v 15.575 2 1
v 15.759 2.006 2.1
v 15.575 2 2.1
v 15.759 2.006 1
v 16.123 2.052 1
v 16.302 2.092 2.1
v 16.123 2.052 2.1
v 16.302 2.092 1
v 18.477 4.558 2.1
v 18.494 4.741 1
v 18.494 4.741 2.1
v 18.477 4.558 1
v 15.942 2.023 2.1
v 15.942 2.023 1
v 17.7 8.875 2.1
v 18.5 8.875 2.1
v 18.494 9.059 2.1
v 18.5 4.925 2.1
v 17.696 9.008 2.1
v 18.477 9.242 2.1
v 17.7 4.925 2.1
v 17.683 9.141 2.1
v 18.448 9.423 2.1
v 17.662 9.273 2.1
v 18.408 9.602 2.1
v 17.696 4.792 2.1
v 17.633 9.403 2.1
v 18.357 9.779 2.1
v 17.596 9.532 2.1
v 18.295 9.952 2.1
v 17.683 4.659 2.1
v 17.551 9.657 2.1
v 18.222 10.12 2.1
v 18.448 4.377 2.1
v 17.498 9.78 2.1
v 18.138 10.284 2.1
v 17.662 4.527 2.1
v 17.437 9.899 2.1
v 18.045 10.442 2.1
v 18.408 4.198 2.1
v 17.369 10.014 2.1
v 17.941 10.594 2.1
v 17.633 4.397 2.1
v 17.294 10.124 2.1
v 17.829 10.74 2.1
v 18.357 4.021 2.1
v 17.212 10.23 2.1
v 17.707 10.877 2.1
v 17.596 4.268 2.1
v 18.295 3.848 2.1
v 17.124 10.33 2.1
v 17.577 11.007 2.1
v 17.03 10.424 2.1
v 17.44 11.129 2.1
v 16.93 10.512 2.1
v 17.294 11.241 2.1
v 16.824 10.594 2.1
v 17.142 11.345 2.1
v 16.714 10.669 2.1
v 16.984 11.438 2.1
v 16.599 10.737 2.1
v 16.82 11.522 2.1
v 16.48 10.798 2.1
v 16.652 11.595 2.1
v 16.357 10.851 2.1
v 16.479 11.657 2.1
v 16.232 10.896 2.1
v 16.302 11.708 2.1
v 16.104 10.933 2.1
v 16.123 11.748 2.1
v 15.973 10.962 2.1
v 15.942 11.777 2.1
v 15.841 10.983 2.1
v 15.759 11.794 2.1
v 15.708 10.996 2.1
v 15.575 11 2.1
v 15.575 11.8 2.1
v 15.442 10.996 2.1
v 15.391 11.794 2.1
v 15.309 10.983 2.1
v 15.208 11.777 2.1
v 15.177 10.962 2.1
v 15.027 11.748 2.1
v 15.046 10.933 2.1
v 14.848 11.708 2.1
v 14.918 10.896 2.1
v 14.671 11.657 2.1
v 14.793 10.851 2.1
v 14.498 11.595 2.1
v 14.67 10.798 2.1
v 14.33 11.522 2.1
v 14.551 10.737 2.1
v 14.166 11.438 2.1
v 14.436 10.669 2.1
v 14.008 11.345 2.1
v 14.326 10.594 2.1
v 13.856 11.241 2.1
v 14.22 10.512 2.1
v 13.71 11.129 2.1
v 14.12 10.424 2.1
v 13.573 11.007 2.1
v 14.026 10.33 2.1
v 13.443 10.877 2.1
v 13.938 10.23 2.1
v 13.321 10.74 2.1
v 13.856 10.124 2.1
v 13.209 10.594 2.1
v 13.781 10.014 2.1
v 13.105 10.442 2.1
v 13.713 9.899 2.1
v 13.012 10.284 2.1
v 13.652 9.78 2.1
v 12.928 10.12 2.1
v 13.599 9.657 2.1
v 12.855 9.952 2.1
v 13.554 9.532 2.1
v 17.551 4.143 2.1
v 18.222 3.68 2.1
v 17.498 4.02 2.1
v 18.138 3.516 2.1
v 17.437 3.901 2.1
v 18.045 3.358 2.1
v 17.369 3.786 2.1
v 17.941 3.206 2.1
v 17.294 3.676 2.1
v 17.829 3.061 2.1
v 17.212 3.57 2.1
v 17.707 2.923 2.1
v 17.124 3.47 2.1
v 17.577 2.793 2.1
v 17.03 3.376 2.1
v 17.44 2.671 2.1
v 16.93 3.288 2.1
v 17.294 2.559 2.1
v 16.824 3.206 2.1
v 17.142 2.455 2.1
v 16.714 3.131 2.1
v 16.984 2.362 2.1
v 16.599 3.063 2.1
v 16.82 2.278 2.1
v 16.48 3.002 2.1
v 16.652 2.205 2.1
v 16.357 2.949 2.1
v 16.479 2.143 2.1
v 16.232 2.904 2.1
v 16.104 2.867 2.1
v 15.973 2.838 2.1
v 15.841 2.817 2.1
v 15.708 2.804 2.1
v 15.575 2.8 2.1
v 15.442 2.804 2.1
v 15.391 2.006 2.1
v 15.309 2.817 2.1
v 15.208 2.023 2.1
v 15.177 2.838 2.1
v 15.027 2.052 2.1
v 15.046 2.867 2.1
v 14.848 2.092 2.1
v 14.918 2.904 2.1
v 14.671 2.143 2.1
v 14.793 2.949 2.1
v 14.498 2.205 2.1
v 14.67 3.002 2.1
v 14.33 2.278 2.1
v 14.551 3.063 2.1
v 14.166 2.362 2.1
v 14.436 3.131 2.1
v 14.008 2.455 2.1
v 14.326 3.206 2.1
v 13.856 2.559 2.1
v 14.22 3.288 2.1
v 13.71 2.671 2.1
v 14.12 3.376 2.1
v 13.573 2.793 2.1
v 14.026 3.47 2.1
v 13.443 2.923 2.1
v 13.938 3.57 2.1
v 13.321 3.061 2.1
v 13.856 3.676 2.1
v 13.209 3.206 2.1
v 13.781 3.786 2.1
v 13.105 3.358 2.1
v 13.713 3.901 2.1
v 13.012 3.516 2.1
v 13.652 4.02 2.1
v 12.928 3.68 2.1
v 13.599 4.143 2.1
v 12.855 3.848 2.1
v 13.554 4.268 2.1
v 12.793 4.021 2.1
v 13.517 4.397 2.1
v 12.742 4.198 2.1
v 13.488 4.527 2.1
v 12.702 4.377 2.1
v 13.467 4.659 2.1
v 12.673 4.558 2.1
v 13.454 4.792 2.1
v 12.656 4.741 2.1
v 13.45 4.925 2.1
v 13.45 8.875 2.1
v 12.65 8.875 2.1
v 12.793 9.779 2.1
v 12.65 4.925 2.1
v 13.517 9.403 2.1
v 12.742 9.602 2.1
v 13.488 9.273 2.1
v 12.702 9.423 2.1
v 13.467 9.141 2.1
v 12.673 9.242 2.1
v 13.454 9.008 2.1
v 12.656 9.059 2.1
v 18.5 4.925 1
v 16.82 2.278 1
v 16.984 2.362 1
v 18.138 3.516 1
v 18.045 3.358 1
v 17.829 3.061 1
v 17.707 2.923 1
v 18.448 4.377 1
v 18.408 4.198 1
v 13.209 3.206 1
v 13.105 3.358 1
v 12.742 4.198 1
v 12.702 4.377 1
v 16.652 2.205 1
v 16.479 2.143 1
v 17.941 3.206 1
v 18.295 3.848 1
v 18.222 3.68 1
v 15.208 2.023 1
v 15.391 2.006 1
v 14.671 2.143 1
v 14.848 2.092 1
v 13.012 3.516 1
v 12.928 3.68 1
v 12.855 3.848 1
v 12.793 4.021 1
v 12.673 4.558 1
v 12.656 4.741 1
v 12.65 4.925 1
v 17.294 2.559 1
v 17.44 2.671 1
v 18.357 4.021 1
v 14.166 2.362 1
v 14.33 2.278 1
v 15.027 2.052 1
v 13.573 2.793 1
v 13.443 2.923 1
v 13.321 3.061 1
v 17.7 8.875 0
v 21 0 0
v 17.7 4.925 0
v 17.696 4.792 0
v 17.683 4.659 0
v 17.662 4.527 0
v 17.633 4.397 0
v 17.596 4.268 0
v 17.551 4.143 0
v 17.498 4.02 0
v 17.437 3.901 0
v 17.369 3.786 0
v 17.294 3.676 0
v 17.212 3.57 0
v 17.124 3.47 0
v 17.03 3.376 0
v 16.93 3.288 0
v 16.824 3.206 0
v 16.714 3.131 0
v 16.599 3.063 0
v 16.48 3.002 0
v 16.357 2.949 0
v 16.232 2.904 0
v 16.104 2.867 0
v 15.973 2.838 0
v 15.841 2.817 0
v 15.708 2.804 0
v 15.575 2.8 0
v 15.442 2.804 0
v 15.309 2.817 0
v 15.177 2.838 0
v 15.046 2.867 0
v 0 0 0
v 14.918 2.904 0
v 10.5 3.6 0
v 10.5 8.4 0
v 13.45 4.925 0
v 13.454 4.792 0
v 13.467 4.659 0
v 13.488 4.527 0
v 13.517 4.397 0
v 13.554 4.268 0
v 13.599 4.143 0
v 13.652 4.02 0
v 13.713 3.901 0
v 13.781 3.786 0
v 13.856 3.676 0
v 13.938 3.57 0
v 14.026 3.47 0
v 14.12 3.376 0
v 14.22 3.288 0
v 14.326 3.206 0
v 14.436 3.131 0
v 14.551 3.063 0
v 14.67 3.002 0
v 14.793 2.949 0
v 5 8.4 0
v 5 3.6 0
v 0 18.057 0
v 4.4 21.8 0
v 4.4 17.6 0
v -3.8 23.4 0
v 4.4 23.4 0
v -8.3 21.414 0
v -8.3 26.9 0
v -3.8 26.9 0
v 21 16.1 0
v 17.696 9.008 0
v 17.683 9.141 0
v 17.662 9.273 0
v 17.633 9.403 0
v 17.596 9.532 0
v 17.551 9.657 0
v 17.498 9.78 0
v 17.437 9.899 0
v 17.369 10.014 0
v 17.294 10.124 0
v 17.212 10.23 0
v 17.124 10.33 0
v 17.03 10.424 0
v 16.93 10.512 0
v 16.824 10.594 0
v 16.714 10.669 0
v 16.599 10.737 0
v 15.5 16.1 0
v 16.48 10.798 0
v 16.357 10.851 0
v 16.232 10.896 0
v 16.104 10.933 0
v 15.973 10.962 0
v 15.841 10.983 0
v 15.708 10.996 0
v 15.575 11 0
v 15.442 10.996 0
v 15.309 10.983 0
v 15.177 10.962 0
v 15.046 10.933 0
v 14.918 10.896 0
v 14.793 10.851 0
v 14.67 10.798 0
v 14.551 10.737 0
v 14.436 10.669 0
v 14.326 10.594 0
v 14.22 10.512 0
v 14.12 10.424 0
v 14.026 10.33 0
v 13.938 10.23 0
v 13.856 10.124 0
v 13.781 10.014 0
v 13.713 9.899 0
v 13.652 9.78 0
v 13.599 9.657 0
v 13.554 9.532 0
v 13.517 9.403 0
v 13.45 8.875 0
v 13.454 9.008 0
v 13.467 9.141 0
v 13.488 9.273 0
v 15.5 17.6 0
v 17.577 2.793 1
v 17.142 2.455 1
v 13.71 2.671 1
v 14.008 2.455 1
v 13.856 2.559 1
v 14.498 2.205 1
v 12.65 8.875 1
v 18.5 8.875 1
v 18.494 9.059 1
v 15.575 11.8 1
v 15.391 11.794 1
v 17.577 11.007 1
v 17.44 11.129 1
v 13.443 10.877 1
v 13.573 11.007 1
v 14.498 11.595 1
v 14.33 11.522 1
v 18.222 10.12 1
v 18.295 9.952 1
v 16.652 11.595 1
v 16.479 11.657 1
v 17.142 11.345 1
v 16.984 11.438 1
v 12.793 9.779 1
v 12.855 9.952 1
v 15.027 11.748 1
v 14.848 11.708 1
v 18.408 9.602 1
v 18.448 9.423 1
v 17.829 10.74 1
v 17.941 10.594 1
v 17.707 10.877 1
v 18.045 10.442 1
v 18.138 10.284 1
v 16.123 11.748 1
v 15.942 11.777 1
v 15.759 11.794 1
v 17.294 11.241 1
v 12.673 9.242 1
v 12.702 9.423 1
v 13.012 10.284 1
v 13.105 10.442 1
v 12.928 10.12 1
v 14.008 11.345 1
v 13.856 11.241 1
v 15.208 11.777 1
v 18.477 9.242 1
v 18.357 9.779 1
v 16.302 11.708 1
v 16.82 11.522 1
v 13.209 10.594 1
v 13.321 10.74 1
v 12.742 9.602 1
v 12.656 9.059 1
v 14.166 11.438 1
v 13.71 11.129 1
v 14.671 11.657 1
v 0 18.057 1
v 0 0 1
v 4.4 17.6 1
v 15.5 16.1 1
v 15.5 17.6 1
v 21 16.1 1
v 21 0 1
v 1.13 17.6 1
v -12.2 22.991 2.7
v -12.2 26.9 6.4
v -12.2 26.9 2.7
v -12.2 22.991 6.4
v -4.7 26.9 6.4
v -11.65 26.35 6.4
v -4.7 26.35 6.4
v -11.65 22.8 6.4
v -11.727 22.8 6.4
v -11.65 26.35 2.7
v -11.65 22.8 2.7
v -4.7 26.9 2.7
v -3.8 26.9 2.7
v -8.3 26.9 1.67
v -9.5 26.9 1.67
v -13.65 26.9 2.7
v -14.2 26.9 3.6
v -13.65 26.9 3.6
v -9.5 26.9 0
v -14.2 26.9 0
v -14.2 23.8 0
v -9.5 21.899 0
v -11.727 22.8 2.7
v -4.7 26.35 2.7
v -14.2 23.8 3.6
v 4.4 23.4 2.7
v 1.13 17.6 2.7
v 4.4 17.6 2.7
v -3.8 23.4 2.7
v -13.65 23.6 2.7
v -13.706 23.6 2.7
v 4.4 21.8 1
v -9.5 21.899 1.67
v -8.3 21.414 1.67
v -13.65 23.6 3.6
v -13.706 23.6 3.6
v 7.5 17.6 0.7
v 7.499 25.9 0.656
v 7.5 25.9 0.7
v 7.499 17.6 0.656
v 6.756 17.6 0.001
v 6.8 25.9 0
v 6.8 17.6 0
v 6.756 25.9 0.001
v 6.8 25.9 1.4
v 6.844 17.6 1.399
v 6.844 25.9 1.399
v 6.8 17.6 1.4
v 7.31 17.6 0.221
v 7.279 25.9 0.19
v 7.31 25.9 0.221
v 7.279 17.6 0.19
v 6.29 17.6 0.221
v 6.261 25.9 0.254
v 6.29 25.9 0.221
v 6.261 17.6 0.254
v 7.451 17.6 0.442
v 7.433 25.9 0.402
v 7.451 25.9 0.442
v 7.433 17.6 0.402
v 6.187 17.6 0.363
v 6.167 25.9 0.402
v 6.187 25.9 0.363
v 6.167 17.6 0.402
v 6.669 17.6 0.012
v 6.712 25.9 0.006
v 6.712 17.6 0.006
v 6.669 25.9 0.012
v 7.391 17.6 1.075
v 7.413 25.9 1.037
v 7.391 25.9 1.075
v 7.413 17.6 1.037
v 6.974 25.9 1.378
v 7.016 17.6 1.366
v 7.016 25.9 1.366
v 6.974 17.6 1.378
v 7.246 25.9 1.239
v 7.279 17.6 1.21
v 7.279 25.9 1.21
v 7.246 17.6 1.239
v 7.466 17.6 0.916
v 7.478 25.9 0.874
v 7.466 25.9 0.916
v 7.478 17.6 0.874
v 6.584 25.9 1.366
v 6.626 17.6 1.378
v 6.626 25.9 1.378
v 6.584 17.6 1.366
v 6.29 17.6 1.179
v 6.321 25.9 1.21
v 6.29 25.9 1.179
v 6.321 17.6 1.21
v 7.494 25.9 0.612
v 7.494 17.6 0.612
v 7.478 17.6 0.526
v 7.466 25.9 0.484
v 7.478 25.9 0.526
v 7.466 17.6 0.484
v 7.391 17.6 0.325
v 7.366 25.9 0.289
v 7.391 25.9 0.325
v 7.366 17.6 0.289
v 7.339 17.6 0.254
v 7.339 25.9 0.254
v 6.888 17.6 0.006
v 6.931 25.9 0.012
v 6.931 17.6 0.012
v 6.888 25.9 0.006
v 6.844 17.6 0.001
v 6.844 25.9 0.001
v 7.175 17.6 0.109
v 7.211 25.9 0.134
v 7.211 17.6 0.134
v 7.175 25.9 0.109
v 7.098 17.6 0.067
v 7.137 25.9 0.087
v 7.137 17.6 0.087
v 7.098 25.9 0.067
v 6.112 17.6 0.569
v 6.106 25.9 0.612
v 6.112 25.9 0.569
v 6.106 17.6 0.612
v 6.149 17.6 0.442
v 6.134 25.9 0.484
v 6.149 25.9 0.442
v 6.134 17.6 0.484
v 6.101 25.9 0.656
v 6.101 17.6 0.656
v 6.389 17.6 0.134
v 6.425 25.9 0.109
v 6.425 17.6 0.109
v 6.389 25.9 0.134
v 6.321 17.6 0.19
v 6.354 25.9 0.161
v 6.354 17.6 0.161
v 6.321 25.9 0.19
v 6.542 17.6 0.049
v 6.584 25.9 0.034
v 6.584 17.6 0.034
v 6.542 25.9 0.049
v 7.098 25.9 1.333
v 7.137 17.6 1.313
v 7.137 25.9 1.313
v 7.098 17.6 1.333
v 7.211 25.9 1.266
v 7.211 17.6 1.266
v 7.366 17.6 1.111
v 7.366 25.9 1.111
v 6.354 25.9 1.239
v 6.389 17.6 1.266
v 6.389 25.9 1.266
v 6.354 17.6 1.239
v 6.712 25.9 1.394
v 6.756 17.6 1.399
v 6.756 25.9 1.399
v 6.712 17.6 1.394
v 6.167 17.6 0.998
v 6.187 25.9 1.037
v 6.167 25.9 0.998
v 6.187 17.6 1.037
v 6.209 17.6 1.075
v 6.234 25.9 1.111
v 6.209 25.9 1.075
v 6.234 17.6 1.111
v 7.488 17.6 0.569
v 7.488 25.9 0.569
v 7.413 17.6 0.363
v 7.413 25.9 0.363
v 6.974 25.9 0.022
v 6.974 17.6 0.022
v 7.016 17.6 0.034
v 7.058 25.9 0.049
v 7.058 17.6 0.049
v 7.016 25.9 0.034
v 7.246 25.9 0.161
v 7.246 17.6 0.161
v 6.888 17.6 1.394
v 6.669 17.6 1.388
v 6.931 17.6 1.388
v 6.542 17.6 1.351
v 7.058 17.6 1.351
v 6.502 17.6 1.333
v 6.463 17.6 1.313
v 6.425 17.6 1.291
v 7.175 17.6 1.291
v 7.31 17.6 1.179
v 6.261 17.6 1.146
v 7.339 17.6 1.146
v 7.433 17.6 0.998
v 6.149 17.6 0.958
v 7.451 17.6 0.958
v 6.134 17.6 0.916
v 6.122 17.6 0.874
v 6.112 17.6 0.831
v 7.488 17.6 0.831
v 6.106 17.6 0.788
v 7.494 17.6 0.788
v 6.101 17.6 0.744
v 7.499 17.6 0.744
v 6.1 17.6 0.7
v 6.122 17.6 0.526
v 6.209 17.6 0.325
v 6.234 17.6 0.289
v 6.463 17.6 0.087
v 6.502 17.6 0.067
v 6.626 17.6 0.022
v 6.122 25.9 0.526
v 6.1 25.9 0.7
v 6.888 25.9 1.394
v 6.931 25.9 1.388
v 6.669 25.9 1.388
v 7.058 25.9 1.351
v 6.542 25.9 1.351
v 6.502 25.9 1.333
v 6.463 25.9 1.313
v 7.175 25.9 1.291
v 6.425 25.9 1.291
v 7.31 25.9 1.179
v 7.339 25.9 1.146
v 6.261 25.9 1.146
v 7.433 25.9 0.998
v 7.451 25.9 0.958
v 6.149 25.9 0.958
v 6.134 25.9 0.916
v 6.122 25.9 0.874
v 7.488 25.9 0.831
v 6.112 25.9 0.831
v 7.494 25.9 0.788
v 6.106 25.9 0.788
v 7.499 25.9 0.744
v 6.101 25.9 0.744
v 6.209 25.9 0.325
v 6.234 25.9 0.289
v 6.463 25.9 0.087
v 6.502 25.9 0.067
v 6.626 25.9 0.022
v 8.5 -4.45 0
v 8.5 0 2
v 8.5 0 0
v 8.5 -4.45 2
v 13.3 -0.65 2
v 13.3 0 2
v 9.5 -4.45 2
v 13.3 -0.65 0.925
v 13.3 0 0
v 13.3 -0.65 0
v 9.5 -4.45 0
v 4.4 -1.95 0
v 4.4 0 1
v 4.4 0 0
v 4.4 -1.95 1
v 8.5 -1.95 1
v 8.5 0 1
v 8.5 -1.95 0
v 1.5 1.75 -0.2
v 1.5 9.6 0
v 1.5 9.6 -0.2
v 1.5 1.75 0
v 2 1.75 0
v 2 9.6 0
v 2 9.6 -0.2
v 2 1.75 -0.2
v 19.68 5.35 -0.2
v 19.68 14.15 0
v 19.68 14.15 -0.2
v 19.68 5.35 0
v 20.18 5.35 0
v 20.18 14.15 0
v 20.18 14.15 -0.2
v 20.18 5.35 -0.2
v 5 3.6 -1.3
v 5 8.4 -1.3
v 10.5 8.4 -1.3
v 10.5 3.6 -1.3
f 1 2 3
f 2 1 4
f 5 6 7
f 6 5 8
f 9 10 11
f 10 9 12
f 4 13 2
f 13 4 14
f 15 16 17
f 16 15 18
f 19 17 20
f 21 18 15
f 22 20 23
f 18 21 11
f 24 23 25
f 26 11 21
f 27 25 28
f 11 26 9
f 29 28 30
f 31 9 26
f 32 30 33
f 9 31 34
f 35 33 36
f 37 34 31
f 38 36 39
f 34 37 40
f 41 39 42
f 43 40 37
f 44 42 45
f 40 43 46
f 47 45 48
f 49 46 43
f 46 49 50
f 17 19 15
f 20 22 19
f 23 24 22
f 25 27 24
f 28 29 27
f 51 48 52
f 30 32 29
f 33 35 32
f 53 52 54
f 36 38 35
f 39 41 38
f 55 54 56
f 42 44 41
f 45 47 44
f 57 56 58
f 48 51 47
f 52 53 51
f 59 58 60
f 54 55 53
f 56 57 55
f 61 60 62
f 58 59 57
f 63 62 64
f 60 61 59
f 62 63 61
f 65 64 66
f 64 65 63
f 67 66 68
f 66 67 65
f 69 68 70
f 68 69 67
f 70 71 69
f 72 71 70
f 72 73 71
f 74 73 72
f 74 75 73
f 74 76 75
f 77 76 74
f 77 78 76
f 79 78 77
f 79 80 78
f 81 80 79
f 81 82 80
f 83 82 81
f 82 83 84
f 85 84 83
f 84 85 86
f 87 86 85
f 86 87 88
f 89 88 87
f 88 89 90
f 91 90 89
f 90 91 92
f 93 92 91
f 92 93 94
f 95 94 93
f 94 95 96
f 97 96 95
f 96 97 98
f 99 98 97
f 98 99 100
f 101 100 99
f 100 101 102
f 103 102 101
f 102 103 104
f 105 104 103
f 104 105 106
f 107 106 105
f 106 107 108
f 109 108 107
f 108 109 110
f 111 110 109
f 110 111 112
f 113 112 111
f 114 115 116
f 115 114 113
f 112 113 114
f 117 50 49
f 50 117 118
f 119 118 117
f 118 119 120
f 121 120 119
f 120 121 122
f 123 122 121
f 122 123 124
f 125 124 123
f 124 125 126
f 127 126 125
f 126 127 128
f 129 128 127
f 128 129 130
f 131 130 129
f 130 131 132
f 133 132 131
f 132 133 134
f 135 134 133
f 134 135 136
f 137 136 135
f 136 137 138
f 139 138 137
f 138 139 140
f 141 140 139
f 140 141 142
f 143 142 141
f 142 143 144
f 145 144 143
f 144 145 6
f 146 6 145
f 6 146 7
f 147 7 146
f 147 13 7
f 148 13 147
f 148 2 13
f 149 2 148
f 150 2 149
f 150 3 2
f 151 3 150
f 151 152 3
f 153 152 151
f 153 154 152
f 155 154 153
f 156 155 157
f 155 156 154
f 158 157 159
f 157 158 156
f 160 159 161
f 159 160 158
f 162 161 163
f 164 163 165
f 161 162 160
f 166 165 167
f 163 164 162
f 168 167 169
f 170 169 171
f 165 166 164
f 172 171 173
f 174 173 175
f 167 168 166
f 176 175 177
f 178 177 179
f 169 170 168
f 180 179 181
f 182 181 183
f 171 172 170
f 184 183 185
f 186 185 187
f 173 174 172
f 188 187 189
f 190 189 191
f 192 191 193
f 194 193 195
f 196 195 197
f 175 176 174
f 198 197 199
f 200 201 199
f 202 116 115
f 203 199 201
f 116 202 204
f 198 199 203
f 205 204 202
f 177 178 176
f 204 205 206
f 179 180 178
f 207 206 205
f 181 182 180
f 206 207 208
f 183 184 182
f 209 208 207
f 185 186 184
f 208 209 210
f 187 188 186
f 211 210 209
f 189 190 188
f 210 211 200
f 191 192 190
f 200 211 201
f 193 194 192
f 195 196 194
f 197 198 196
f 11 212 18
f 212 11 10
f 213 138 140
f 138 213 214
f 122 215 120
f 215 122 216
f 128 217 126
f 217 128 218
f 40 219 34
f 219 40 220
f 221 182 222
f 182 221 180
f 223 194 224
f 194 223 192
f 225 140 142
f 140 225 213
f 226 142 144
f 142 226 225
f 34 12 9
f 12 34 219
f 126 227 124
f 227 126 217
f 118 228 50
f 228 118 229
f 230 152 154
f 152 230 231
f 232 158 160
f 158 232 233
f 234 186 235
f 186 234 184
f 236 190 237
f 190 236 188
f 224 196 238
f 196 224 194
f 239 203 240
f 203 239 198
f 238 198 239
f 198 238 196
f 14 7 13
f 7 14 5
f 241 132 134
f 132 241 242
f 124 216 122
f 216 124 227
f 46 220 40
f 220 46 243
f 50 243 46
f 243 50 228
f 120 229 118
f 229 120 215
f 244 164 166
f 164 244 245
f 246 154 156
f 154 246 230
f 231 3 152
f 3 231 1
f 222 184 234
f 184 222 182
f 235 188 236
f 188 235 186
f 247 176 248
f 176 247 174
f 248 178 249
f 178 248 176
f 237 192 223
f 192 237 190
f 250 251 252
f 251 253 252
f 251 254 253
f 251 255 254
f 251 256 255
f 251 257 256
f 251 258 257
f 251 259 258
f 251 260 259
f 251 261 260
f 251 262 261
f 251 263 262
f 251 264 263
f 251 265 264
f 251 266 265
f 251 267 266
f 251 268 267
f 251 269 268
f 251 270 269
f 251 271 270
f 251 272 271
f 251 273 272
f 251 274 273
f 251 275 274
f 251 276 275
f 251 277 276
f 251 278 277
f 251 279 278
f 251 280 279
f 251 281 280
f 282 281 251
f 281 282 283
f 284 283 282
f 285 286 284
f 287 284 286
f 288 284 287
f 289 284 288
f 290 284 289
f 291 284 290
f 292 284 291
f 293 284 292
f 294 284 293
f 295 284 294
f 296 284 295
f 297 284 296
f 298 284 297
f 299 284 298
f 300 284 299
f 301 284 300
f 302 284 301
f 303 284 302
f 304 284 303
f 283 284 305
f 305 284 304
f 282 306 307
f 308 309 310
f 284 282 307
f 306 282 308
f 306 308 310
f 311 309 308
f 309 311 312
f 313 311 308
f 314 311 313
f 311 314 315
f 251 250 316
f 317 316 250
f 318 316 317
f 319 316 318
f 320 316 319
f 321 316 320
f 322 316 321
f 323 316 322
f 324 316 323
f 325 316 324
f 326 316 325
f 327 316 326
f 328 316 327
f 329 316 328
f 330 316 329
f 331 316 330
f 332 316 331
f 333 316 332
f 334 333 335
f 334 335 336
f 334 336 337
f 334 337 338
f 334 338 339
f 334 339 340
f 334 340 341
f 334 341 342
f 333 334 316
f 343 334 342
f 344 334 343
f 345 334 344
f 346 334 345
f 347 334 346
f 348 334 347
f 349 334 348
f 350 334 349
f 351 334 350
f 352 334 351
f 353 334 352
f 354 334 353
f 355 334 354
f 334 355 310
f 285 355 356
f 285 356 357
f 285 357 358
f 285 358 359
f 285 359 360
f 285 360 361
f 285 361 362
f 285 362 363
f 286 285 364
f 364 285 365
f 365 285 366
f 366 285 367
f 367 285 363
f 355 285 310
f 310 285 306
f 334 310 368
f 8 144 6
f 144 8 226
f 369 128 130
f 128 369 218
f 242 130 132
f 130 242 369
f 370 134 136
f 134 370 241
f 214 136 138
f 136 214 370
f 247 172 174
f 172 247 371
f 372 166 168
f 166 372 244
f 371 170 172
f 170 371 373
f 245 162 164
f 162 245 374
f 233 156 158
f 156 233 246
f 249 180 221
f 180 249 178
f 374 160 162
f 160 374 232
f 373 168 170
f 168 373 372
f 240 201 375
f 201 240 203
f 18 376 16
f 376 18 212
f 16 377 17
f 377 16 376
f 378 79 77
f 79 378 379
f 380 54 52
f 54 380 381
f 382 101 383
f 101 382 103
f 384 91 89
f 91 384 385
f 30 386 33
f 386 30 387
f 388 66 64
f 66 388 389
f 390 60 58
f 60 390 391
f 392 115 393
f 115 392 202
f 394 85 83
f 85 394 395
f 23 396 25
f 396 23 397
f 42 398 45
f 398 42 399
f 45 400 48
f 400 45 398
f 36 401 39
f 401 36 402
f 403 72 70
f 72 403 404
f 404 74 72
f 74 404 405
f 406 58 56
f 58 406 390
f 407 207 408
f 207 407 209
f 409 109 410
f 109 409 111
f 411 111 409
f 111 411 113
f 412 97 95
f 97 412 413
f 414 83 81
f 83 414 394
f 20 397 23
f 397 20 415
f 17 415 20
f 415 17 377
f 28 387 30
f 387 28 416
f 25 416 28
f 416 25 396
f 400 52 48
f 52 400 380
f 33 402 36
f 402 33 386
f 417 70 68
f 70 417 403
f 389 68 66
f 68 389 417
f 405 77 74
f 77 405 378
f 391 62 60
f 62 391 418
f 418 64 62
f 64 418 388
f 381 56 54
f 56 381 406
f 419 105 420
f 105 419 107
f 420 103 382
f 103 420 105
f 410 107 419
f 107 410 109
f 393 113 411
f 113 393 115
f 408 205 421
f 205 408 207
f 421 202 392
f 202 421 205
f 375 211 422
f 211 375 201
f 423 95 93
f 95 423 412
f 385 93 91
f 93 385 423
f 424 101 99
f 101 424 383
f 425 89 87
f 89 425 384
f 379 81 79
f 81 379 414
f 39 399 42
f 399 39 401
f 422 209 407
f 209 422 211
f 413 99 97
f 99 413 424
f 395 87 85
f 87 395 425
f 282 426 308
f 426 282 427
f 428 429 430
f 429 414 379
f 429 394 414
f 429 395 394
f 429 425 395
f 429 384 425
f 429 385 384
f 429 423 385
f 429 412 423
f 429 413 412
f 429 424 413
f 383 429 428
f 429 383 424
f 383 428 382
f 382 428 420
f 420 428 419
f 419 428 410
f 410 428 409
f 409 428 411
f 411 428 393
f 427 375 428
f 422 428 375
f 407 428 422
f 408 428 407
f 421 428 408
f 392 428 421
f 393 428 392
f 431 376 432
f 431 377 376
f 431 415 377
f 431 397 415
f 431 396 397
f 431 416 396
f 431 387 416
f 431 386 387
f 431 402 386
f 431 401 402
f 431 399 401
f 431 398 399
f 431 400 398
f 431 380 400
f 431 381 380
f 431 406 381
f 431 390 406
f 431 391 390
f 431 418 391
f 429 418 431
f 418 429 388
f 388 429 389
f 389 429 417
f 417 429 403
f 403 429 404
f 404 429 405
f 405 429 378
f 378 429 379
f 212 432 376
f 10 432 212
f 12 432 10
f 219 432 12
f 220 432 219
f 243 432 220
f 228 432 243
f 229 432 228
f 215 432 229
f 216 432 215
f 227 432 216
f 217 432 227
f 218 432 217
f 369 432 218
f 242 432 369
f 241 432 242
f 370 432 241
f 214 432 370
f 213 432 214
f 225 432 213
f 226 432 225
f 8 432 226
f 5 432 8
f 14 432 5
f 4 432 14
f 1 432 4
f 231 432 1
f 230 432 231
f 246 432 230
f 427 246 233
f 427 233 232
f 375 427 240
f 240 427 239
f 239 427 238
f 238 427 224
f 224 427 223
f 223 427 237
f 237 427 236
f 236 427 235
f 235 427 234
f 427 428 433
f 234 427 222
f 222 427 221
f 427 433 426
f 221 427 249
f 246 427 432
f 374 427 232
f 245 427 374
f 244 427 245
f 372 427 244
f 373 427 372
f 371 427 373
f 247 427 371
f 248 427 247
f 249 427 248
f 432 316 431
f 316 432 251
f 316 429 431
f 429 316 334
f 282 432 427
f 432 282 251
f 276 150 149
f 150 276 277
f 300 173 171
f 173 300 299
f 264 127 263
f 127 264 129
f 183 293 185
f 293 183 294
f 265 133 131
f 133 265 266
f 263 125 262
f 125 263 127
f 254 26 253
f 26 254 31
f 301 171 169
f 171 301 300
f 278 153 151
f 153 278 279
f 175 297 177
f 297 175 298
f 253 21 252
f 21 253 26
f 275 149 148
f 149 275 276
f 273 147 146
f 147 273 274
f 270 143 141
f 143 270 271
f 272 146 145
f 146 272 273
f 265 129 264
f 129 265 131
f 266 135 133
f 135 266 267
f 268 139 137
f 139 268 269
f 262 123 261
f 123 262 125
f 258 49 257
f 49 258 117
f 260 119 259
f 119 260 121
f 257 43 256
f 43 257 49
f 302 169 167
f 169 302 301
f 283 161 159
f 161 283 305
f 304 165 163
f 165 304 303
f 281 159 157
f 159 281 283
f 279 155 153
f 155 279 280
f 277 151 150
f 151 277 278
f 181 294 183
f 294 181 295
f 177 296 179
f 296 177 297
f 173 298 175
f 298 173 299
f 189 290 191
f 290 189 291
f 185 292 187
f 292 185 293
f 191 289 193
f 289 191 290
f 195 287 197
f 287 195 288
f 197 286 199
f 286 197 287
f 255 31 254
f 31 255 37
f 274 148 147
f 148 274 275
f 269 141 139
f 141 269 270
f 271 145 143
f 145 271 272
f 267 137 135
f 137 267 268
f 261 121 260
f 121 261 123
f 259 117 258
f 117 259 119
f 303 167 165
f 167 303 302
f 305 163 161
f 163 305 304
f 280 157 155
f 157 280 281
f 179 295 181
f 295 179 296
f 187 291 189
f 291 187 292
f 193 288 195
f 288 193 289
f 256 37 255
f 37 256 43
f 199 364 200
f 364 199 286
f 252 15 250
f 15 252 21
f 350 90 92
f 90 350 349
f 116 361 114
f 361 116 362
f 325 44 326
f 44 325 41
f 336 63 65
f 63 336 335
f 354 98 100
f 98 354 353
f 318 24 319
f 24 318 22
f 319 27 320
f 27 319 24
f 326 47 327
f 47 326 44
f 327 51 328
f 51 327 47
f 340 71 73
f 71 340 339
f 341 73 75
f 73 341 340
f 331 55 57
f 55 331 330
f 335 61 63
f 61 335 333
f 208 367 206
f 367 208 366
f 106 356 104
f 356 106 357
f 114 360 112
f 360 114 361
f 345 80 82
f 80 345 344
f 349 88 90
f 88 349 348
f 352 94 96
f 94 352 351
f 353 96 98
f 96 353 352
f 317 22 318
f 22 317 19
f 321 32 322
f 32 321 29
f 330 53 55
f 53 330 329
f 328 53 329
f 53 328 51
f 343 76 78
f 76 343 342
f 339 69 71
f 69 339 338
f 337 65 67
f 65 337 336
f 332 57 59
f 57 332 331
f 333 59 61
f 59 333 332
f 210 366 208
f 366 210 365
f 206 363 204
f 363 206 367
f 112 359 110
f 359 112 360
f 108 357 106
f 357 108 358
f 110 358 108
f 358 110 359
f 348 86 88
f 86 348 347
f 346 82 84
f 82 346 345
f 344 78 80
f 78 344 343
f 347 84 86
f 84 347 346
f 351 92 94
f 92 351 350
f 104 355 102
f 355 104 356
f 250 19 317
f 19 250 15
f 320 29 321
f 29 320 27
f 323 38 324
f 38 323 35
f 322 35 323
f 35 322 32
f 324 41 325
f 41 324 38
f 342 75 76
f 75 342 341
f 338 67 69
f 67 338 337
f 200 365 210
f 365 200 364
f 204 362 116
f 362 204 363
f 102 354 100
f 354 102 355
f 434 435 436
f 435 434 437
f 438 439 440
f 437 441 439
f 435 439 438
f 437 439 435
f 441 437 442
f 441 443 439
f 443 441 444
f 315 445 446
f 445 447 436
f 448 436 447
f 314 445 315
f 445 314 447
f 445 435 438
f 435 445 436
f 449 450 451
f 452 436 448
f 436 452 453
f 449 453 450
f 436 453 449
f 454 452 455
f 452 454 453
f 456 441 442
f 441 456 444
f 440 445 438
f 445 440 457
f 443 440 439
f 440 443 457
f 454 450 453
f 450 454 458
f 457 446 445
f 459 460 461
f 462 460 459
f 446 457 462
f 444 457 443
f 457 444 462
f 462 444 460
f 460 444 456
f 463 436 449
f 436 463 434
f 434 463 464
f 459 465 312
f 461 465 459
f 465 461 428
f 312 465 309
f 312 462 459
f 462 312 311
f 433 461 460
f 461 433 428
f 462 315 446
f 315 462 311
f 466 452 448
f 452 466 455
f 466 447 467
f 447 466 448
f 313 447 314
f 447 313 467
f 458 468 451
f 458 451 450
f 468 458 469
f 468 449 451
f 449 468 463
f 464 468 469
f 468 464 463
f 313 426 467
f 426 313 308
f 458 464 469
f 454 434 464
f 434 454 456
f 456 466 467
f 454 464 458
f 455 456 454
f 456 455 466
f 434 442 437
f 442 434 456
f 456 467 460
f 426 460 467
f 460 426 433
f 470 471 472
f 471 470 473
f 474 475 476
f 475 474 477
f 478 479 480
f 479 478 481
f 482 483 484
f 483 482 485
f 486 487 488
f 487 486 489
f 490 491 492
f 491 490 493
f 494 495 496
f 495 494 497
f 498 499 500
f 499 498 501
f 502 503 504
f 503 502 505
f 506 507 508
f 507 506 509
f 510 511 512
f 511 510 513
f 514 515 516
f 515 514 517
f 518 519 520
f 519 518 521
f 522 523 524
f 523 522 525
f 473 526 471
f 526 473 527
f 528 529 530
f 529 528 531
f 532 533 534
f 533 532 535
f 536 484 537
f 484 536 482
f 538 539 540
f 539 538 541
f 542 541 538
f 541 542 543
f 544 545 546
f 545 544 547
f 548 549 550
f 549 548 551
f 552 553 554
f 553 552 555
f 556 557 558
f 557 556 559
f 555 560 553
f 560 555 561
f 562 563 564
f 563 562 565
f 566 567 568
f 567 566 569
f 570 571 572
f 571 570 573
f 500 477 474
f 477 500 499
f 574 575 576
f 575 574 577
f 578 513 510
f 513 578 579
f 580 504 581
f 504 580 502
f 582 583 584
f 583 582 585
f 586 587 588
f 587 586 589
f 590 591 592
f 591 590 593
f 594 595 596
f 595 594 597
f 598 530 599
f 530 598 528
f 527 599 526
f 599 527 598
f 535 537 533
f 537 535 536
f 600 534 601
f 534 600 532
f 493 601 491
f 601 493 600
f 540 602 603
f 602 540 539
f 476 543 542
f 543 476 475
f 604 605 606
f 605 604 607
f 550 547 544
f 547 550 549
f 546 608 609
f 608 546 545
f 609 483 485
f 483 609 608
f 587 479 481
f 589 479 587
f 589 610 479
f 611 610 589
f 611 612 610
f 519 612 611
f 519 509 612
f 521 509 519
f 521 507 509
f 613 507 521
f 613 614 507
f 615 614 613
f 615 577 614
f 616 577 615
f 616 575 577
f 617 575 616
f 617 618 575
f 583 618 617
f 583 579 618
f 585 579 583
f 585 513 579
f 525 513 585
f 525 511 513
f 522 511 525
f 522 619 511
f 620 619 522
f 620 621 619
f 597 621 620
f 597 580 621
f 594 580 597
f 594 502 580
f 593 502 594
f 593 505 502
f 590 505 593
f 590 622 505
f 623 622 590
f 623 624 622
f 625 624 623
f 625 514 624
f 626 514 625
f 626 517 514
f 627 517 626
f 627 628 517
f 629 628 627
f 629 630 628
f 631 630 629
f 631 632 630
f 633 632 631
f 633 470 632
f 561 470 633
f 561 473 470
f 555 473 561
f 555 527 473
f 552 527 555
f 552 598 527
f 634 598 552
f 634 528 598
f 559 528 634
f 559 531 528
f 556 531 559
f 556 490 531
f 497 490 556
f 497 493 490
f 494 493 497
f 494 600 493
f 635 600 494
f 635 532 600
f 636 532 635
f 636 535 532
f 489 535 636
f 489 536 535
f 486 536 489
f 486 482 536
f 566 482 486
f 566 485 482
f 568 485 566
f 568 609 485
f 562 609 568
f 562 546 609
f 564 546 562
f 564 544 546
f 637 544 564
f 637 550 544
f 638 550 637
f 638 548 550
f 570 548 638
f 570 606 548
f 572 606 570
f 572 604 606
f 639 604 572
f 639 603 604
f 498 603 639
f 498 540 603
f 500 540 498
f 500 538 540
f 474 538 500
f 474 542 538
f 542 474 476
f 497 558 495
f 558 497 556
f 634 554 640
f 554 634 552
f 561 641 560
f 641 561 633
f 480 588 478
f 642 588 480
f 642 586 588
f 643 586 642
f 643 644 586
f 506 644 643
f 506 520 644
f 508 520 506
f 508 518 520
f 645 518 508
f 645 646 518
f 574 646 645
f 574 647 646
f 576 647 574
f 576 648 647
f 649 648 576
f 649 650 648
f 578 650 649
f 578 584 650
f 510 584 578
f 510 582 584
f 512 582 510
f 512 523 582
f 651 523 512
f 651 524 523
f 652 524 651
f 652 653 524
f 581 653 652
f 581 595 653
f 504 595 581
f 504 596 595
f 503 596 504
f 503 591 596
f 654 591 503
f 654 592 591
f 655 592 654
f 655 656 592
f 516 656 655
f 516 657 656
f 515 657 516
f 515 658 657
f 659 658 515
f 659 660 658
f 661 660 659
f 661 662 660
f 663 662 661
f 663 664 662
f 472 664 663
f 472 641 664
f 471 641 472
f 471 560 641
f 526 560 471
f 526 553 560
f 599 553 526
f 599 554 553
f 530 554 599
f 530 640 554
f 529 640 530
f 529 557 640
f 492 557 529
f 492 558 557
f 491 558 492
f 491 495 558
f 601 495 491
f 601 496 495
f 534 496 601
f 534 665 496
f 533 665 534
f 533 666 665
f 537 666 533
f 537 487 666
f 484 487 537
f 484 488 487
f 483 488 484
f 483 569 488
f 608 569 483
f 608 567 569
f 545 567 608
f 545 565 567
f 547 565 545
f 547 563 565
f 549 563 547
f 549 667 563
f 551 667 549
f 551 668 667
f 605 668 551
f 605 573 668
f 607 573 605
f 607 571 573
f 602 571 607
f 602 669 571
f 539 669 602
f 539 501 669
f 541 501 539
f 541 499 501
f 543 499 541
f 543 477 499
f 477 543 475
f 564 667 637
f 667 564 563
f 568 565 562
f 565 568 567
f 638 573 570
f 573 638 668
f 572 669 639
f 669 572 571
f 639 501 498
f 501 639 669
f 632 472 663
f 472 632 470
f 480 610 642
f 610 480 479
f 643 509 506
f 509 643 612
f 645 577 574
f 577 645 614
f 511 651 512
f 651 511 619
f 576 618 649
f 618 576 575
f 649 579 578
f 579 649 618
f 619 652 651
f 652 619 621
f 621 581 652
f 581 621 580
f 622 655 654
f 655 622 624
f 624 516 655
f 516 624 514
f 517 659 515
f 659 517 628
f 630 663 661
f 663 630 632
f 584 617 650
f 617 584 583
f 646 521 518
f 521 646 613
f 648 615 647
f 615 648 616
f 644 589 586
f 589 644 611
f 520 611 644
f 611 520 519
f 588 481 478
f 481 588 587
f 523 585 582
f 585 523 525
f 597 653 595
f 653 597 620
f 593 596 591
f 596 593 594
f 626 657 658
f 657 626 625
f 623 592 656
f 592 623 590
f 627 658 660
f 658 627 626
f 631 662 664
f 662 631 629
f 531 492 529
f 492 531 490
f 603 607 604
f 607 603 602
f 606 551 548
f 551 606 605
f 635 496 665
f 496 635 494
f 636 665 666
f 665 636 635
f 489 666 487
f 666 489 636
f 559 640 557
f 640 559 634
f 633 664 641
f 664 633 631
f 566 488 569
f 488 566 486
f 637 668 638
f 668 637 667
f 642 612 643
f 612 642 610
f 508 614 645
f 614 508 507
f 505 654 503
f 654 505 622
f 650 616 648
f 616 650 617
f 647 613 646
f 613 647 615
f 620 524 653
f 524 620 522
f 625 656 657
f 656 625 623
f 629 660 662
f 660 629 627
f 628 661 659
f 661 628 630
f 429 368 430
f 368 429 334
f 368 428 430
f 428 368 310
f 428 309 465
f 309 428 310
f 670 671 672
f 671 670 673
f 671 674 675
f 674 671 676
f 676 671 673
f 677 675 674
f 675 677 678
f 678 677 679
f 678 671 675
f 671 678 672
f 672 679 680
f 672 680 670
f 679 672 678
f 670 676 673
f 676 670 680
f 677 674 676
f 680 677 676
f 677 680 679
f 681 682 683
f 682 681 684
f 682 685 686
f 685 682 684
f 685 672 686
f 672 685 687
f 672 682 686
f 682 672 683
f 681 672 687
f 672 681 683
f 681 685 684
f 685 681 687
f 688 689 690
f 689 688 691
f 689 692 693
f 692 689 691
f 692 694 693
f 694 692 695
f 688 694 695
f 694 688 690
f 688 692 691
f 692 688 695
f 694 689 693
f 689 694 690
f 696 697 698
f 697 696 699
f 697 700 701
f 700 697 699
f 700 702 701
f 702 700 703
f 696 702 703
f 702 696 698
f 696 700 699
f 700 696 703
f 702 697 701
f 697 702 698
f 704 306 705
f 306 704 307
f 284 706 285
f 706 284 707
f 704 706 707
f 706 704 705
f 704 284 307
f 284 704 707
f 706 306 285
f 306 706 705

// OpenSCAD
material_strength = 1.0;

//base body with mounting slot
difference() {
    rim_strength = 0.8;
    length = 9.8;
    width = 5.85;
    translate() {
        cube([21, 16.1, material_strength]);
        translate([21 - 2.5 - width, 2, 0]) scale([1, 1, 2.1]) slot(length, width);
    };
    translate([21 - 2.5 - width, 2, 0]) scale([1, 1, 2.1]) translate([rim_strength, rim_strength, 0]) slot(length - 2 * rim_strength, width - 2 * rim_strength);
};

level_actuator_material_strength = 2.7;
level_support_material_strength = 6.4;

translate([0, 16, 0]) {
    //uppper rail
    cube([15.5, 1.6, material_strength]);
    //switch lever connector
    cube([4.4, 5.8, material_strength]);
    translate([0, 1.6, 0]) {
        translate([-18.6 + 4.4, 0, 0]) {
            //switch lever actuator
            difference() {
                translate() {
                    //switch stabilizer
                    translate([0, 6.0, 0]) cube([0.55, 3.3, 3.6]);
                    difference() {
                        translate() {
                            //switch actuator
                            translate([2, 0, 0]) {
                                translate([0, 5.2, 0]) cube([0.55, 4.1, 6.4]);
                                translate([0, 5.2 + 4.2 - 0.65, 0]) cube([7.5, 0.55, 6.4]);
                            };
                            cube([18.6, 5.8, level_actuator_material_strength]);
                            translate([0, 5.8, 0]) {
                                cube([10.4, 3.5, level_actuator_material_strength]);
                            };
                        };
                        //alignment rail
                        translate([4.7, 0, 0]) cube([1.2, 9.3, 1.67]);
                    };
                };
                translate([0, 5.8 + 0.4, level_support_material_strength]) rotate([180, 0, -22.02]) {
                    cube([20, 8, level_support_material_strength]);
                };
            };
        };
        //spring rod
        translate([2.4 + 4.4, 0, 0.7]) {
            rotate([-90, 0, 0]) cylinder(8.3, 0.7, 0.7, $fn=100);
        };
    };
};

//catch
translate([4.4, -1.95, 0]) {
    cube([4.1, 1.95, material_strength]);
    translate([4.1, -2.5, 0]) {
        difference() {
            cube([4.8, 2.5 + 1.95, material_strength * 2]);
            translate([1, 0, 0]) rotate([180, 0, 45]) translate([0, 0, -material_strength * 2]) cube([10, 10, material_strength * 2]);
        };
    };
};

//stabilizer rails
translate([0, 0, -0.2]) {
    translate([1.5, 1.75, 0]) {
        cube([0.5, 7.85, 0.2]);
    };
    translate([21 - 1.32, 5.35, 0]) {
        cube([0.5, 8.8, 0.2]);
    };
};

//button
translate([5, 3.6, -1.3]) {
    cube([5.5, 4.8, 1.3]);
};

module slot(length, width) {
    translate([width/2, width/2, 0]) cylinder(1, r=width/2, $fn=100);
    translate([0, width/2, 0]) cube([width, length - width, 1]);
    translate([width/2, length - width/2, 0]) cylinder(1, r=width/2, $fn=100);
};

module routed_slot(length, width, material_strength) {
    difference() {
        slot(length, width);
        translate([material_strength, material_strength, 0]) slot(length - 2 * material_strength, width - 2 * material_strength);
    };
};

outer_slot_radius = 5.85 / 2;
inner_slot_radius = 4.2 / 2;

//mounting slot
//translate([11.9 + outer_slot_radius, outer_slot_radius + 2, 0]) {
//    scale([1, 1, 2.1]) routed_slot(9.8, 5.85, 0.8);
//    cylinder(2.1, r=outer_slot_radius, $fn=100);
//    translate([0, 9.8 - outer_slot_radius]) cylinder(2.1, r=outer_slot_radius, $fn=100);
//};
